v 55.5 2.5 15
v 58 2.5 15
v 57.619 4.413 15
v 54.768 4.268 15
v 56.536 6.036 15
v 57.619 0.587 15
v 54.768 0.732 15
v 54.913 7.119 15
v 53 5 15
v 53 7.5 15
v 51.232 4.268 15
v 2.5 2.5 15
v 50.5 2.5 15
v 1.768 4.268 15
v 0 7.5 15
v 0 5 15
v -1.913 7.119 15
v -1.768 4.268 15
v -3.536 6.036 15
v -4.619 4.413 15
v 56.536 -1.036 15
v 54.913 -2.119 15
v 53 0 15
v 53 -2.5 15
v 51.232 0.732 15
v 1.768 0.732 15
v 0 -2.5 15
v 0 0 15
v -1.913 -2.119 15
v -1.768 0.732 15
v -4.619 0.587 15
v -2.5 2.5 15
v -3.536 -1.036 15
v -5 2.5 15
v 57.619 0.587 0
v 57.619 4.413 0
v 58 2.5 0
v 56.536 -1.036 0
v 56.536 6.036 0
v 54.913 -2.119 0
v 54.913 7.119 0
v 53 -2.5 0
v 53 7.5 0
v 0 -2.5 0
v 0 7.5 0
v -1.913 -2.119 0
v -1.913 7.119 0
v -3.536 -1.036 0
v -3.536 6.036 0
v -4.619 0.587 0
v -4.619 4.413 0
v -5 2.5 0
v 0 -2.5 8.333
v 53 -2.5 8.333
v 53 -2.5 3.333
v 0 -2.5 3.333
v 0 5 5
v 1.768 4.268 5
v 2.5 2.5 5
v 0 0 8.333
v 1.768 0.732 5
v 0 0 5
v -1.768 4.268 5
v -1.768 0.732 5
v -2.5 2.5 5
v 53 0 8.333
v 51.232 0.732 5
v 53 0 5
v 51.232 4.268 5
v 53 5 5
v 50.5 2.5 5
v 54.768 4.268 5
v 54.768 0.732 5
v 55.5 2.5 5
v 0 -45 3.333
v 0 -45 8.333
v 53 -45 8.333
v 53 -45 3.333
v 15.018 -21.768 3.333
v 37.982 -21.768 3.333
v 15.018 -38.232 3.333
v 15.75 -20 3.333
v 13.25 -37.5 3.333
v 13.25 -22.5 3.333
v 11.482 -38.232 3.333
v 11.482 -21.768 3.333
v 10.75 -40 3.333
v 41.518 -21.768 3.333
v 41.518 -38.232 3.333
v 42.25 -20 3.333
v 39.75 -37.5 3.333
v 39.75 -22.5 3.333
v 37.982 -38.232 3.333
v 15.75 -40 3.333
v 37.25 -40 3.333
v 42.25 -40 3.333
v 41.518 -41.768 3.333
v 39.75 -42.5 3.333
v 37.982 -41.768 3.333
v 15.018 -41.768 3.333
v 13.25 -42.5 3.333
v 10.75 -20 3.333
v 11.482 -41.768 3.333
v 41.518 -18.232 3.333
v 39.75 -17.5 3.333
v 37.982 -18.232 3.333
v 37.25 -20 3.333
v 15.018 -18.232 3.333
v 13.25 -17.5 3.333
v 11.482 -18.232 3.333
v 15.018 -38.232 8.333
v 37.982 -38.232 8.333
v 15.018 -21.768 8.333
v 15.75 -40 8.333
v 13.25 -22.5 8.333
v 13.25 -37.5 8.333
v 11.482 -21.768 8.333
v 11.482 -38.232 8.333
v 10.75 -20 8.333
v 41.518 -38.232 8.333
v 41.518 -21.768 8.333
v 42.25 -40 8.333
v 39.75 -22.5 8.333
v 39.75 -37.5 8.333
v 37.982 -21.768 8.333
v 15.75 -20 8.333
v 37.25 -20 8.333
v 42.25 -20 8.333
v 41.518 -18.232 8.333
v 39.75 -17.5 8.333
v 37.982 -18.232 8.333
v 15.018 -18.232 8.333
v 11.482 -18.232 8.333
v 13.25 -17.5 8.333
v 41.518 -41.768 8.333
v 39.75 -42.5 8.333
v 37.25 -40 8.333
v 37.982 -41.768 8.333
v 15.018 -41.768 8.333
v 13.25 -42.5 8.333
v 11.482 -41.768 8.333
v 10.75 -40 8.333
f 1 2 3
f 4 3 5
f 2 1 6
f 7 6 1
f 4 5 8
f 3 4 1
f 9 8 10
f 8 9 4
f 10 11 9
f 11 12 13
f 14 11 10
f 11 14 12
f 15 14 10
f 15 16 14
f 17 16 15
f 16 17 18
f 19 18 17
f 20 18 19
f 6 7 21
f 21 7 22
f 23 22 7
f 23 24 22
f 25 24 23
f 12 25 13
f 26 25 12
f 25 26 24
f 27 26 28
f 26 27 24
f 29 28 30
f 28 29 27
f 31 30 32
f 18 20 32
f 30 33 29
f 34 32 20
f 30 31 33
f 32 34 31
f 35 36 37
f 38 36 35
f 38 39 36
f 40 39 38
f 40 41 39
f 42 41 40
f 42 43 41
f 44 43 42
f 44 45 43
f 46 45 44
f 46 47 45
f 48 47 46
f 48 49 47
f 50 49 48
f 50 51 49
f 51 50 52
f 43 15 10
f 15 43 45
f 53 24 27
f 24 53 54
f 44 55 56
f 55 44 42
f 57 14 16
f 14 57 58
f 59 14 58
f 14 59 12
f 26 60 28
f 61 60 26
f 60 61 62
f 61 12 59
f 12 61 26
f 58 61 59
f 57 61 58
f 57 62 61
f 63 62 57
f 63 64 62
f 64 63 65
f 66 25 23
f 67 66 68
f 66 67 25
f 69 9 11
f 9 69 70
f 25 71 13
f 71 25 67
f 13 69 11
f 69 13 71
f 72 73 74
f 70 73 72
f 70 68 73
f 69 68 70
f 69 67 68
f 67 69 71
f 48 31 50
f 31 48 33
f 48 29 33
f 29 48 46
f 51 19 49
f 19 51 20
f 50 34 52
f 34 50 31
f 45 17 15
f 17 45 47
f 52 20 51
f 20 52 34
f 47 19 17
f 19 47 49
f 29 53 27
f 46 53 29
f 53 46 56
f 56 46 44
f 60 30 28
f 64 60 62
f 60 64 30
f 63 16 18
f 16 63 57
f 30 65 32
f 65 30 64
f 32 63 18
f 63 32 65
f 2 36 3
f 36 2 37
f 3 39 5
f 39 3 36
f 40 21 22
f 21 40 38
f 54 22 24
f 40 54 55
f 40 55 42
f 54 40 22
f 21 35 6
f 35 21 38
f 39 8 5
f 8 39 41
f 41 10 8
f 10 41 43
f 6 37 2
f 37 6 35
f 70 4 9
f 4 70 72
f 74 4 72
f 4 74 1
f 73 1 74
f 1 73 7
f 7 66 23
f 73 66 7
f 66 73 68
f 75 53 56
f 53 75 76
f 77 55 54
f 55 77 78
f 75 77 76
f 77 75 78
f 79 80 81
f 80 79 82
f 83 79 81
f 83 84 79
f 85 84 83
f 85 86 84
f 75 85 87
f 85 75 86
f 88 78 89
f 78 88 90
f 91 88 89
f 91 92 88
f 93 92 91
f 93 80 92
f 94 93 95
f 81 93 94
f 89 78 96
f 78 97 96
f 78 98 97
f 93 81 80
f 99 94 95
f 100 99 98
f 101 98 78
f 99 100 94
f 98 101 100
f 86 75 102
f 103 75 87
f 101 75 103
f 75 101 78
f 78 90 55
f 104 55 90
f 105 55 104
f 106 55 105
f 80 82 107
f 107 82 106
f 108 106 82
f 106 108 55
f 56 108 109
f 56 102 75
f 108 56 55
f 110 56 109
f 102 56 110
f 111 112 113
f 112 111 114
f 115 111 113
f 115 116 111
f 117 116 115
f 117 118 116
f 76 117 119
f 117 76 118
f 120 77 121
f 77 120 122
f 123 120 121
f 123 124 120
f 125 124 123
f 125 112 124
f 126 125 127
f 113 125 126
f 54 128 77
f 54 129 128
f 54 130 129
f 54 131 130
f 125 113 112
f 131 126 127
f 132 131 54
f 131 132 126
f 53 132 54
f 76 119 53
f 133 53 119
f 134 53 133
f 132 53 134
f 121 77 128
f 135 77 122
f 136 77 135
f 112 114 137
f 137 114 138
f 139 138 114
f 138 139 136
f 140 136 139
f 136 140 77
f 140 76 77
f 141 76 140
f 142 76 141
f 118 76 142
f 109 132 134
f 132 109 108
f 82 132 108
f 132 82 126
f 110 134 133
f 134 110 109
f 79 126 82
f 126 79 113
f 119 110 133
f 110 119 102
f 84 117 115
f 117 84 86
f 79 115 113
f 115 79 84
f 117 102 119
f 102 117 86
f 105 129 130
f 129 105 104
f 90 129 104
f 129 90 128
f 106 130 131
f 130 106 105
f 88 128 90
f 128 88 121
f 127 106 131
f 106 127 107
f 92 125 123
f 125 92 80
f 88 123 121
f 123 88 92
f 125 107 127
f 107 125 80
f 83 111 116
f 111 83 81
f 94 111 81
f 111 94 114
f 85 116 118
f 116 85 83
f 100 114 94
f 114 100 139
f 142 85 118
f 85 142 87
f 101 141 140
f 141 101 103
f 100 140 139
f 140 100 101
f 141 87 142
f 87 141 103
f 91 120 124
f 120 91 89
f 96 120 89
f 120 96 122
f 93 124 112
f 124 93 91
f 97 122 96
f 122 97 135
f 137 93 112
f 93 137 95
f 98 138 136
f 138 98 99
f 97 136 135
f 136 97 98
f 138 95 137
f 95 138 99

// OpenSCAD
l=53;
b=10;
h=15;


d=b;
r=d/2;

module body(){
    translate([0,-r/2,0]) cube([l,b,h]);
}

module _left_stand(){
    difference(){
        translate([0,r/2,0]) cylinder(r=r,h=h);
        translate([0,r/2,5]) cylinder(r=r/2,h=h*2);
    }
}

module left_stand(){
        translate([0,r/2,0]) cylinder(r=r,h=h);
}

module _right_stand(){
    difference(){
        translate([l,r/2,0]) cylinder(r=r,h=h);
        translate([l,r/2,5]) cylinder(r=r/2,h=h*2);
    }
}

module right_stand(){
        translate([l,r/2,0]) cylinder(r=r,h=h);
}

module make_stand(){
    difference(){
        body();
        translate([0,r/2,5]) cylinder(r=r/2,h=h*2);
        translate([l,r/2,5]) cylinder(r=r/2,h=h*2);
    }
    difference(){
        left_stand();
        translate([0,r/2,5]) cylinder(r=r/2,h=h*2);
    }
    difference(){
        right_stand();
        translate([l,r/2,5]) cylinder(r=r/2,h=h*2);
    }
    difference(){
        rotate([90,0,0]) {
            translate([0,b/3,0]) cube([l,b/2,h*3]);
        }
        translate([l/4,-b*2,0]) cylinder(r=r/2,h=h);
        translate([l-l/4,-b*2,0]) cylinder(r=r/2,h=h);
        
        translate([l/4,-b*4,0]) cylinder(r=r/2,h=h);
        translate([l-l/4,-b*4,0]) cylinder(r=r/2,h=h);
    }
}

make_stand();

    
    
